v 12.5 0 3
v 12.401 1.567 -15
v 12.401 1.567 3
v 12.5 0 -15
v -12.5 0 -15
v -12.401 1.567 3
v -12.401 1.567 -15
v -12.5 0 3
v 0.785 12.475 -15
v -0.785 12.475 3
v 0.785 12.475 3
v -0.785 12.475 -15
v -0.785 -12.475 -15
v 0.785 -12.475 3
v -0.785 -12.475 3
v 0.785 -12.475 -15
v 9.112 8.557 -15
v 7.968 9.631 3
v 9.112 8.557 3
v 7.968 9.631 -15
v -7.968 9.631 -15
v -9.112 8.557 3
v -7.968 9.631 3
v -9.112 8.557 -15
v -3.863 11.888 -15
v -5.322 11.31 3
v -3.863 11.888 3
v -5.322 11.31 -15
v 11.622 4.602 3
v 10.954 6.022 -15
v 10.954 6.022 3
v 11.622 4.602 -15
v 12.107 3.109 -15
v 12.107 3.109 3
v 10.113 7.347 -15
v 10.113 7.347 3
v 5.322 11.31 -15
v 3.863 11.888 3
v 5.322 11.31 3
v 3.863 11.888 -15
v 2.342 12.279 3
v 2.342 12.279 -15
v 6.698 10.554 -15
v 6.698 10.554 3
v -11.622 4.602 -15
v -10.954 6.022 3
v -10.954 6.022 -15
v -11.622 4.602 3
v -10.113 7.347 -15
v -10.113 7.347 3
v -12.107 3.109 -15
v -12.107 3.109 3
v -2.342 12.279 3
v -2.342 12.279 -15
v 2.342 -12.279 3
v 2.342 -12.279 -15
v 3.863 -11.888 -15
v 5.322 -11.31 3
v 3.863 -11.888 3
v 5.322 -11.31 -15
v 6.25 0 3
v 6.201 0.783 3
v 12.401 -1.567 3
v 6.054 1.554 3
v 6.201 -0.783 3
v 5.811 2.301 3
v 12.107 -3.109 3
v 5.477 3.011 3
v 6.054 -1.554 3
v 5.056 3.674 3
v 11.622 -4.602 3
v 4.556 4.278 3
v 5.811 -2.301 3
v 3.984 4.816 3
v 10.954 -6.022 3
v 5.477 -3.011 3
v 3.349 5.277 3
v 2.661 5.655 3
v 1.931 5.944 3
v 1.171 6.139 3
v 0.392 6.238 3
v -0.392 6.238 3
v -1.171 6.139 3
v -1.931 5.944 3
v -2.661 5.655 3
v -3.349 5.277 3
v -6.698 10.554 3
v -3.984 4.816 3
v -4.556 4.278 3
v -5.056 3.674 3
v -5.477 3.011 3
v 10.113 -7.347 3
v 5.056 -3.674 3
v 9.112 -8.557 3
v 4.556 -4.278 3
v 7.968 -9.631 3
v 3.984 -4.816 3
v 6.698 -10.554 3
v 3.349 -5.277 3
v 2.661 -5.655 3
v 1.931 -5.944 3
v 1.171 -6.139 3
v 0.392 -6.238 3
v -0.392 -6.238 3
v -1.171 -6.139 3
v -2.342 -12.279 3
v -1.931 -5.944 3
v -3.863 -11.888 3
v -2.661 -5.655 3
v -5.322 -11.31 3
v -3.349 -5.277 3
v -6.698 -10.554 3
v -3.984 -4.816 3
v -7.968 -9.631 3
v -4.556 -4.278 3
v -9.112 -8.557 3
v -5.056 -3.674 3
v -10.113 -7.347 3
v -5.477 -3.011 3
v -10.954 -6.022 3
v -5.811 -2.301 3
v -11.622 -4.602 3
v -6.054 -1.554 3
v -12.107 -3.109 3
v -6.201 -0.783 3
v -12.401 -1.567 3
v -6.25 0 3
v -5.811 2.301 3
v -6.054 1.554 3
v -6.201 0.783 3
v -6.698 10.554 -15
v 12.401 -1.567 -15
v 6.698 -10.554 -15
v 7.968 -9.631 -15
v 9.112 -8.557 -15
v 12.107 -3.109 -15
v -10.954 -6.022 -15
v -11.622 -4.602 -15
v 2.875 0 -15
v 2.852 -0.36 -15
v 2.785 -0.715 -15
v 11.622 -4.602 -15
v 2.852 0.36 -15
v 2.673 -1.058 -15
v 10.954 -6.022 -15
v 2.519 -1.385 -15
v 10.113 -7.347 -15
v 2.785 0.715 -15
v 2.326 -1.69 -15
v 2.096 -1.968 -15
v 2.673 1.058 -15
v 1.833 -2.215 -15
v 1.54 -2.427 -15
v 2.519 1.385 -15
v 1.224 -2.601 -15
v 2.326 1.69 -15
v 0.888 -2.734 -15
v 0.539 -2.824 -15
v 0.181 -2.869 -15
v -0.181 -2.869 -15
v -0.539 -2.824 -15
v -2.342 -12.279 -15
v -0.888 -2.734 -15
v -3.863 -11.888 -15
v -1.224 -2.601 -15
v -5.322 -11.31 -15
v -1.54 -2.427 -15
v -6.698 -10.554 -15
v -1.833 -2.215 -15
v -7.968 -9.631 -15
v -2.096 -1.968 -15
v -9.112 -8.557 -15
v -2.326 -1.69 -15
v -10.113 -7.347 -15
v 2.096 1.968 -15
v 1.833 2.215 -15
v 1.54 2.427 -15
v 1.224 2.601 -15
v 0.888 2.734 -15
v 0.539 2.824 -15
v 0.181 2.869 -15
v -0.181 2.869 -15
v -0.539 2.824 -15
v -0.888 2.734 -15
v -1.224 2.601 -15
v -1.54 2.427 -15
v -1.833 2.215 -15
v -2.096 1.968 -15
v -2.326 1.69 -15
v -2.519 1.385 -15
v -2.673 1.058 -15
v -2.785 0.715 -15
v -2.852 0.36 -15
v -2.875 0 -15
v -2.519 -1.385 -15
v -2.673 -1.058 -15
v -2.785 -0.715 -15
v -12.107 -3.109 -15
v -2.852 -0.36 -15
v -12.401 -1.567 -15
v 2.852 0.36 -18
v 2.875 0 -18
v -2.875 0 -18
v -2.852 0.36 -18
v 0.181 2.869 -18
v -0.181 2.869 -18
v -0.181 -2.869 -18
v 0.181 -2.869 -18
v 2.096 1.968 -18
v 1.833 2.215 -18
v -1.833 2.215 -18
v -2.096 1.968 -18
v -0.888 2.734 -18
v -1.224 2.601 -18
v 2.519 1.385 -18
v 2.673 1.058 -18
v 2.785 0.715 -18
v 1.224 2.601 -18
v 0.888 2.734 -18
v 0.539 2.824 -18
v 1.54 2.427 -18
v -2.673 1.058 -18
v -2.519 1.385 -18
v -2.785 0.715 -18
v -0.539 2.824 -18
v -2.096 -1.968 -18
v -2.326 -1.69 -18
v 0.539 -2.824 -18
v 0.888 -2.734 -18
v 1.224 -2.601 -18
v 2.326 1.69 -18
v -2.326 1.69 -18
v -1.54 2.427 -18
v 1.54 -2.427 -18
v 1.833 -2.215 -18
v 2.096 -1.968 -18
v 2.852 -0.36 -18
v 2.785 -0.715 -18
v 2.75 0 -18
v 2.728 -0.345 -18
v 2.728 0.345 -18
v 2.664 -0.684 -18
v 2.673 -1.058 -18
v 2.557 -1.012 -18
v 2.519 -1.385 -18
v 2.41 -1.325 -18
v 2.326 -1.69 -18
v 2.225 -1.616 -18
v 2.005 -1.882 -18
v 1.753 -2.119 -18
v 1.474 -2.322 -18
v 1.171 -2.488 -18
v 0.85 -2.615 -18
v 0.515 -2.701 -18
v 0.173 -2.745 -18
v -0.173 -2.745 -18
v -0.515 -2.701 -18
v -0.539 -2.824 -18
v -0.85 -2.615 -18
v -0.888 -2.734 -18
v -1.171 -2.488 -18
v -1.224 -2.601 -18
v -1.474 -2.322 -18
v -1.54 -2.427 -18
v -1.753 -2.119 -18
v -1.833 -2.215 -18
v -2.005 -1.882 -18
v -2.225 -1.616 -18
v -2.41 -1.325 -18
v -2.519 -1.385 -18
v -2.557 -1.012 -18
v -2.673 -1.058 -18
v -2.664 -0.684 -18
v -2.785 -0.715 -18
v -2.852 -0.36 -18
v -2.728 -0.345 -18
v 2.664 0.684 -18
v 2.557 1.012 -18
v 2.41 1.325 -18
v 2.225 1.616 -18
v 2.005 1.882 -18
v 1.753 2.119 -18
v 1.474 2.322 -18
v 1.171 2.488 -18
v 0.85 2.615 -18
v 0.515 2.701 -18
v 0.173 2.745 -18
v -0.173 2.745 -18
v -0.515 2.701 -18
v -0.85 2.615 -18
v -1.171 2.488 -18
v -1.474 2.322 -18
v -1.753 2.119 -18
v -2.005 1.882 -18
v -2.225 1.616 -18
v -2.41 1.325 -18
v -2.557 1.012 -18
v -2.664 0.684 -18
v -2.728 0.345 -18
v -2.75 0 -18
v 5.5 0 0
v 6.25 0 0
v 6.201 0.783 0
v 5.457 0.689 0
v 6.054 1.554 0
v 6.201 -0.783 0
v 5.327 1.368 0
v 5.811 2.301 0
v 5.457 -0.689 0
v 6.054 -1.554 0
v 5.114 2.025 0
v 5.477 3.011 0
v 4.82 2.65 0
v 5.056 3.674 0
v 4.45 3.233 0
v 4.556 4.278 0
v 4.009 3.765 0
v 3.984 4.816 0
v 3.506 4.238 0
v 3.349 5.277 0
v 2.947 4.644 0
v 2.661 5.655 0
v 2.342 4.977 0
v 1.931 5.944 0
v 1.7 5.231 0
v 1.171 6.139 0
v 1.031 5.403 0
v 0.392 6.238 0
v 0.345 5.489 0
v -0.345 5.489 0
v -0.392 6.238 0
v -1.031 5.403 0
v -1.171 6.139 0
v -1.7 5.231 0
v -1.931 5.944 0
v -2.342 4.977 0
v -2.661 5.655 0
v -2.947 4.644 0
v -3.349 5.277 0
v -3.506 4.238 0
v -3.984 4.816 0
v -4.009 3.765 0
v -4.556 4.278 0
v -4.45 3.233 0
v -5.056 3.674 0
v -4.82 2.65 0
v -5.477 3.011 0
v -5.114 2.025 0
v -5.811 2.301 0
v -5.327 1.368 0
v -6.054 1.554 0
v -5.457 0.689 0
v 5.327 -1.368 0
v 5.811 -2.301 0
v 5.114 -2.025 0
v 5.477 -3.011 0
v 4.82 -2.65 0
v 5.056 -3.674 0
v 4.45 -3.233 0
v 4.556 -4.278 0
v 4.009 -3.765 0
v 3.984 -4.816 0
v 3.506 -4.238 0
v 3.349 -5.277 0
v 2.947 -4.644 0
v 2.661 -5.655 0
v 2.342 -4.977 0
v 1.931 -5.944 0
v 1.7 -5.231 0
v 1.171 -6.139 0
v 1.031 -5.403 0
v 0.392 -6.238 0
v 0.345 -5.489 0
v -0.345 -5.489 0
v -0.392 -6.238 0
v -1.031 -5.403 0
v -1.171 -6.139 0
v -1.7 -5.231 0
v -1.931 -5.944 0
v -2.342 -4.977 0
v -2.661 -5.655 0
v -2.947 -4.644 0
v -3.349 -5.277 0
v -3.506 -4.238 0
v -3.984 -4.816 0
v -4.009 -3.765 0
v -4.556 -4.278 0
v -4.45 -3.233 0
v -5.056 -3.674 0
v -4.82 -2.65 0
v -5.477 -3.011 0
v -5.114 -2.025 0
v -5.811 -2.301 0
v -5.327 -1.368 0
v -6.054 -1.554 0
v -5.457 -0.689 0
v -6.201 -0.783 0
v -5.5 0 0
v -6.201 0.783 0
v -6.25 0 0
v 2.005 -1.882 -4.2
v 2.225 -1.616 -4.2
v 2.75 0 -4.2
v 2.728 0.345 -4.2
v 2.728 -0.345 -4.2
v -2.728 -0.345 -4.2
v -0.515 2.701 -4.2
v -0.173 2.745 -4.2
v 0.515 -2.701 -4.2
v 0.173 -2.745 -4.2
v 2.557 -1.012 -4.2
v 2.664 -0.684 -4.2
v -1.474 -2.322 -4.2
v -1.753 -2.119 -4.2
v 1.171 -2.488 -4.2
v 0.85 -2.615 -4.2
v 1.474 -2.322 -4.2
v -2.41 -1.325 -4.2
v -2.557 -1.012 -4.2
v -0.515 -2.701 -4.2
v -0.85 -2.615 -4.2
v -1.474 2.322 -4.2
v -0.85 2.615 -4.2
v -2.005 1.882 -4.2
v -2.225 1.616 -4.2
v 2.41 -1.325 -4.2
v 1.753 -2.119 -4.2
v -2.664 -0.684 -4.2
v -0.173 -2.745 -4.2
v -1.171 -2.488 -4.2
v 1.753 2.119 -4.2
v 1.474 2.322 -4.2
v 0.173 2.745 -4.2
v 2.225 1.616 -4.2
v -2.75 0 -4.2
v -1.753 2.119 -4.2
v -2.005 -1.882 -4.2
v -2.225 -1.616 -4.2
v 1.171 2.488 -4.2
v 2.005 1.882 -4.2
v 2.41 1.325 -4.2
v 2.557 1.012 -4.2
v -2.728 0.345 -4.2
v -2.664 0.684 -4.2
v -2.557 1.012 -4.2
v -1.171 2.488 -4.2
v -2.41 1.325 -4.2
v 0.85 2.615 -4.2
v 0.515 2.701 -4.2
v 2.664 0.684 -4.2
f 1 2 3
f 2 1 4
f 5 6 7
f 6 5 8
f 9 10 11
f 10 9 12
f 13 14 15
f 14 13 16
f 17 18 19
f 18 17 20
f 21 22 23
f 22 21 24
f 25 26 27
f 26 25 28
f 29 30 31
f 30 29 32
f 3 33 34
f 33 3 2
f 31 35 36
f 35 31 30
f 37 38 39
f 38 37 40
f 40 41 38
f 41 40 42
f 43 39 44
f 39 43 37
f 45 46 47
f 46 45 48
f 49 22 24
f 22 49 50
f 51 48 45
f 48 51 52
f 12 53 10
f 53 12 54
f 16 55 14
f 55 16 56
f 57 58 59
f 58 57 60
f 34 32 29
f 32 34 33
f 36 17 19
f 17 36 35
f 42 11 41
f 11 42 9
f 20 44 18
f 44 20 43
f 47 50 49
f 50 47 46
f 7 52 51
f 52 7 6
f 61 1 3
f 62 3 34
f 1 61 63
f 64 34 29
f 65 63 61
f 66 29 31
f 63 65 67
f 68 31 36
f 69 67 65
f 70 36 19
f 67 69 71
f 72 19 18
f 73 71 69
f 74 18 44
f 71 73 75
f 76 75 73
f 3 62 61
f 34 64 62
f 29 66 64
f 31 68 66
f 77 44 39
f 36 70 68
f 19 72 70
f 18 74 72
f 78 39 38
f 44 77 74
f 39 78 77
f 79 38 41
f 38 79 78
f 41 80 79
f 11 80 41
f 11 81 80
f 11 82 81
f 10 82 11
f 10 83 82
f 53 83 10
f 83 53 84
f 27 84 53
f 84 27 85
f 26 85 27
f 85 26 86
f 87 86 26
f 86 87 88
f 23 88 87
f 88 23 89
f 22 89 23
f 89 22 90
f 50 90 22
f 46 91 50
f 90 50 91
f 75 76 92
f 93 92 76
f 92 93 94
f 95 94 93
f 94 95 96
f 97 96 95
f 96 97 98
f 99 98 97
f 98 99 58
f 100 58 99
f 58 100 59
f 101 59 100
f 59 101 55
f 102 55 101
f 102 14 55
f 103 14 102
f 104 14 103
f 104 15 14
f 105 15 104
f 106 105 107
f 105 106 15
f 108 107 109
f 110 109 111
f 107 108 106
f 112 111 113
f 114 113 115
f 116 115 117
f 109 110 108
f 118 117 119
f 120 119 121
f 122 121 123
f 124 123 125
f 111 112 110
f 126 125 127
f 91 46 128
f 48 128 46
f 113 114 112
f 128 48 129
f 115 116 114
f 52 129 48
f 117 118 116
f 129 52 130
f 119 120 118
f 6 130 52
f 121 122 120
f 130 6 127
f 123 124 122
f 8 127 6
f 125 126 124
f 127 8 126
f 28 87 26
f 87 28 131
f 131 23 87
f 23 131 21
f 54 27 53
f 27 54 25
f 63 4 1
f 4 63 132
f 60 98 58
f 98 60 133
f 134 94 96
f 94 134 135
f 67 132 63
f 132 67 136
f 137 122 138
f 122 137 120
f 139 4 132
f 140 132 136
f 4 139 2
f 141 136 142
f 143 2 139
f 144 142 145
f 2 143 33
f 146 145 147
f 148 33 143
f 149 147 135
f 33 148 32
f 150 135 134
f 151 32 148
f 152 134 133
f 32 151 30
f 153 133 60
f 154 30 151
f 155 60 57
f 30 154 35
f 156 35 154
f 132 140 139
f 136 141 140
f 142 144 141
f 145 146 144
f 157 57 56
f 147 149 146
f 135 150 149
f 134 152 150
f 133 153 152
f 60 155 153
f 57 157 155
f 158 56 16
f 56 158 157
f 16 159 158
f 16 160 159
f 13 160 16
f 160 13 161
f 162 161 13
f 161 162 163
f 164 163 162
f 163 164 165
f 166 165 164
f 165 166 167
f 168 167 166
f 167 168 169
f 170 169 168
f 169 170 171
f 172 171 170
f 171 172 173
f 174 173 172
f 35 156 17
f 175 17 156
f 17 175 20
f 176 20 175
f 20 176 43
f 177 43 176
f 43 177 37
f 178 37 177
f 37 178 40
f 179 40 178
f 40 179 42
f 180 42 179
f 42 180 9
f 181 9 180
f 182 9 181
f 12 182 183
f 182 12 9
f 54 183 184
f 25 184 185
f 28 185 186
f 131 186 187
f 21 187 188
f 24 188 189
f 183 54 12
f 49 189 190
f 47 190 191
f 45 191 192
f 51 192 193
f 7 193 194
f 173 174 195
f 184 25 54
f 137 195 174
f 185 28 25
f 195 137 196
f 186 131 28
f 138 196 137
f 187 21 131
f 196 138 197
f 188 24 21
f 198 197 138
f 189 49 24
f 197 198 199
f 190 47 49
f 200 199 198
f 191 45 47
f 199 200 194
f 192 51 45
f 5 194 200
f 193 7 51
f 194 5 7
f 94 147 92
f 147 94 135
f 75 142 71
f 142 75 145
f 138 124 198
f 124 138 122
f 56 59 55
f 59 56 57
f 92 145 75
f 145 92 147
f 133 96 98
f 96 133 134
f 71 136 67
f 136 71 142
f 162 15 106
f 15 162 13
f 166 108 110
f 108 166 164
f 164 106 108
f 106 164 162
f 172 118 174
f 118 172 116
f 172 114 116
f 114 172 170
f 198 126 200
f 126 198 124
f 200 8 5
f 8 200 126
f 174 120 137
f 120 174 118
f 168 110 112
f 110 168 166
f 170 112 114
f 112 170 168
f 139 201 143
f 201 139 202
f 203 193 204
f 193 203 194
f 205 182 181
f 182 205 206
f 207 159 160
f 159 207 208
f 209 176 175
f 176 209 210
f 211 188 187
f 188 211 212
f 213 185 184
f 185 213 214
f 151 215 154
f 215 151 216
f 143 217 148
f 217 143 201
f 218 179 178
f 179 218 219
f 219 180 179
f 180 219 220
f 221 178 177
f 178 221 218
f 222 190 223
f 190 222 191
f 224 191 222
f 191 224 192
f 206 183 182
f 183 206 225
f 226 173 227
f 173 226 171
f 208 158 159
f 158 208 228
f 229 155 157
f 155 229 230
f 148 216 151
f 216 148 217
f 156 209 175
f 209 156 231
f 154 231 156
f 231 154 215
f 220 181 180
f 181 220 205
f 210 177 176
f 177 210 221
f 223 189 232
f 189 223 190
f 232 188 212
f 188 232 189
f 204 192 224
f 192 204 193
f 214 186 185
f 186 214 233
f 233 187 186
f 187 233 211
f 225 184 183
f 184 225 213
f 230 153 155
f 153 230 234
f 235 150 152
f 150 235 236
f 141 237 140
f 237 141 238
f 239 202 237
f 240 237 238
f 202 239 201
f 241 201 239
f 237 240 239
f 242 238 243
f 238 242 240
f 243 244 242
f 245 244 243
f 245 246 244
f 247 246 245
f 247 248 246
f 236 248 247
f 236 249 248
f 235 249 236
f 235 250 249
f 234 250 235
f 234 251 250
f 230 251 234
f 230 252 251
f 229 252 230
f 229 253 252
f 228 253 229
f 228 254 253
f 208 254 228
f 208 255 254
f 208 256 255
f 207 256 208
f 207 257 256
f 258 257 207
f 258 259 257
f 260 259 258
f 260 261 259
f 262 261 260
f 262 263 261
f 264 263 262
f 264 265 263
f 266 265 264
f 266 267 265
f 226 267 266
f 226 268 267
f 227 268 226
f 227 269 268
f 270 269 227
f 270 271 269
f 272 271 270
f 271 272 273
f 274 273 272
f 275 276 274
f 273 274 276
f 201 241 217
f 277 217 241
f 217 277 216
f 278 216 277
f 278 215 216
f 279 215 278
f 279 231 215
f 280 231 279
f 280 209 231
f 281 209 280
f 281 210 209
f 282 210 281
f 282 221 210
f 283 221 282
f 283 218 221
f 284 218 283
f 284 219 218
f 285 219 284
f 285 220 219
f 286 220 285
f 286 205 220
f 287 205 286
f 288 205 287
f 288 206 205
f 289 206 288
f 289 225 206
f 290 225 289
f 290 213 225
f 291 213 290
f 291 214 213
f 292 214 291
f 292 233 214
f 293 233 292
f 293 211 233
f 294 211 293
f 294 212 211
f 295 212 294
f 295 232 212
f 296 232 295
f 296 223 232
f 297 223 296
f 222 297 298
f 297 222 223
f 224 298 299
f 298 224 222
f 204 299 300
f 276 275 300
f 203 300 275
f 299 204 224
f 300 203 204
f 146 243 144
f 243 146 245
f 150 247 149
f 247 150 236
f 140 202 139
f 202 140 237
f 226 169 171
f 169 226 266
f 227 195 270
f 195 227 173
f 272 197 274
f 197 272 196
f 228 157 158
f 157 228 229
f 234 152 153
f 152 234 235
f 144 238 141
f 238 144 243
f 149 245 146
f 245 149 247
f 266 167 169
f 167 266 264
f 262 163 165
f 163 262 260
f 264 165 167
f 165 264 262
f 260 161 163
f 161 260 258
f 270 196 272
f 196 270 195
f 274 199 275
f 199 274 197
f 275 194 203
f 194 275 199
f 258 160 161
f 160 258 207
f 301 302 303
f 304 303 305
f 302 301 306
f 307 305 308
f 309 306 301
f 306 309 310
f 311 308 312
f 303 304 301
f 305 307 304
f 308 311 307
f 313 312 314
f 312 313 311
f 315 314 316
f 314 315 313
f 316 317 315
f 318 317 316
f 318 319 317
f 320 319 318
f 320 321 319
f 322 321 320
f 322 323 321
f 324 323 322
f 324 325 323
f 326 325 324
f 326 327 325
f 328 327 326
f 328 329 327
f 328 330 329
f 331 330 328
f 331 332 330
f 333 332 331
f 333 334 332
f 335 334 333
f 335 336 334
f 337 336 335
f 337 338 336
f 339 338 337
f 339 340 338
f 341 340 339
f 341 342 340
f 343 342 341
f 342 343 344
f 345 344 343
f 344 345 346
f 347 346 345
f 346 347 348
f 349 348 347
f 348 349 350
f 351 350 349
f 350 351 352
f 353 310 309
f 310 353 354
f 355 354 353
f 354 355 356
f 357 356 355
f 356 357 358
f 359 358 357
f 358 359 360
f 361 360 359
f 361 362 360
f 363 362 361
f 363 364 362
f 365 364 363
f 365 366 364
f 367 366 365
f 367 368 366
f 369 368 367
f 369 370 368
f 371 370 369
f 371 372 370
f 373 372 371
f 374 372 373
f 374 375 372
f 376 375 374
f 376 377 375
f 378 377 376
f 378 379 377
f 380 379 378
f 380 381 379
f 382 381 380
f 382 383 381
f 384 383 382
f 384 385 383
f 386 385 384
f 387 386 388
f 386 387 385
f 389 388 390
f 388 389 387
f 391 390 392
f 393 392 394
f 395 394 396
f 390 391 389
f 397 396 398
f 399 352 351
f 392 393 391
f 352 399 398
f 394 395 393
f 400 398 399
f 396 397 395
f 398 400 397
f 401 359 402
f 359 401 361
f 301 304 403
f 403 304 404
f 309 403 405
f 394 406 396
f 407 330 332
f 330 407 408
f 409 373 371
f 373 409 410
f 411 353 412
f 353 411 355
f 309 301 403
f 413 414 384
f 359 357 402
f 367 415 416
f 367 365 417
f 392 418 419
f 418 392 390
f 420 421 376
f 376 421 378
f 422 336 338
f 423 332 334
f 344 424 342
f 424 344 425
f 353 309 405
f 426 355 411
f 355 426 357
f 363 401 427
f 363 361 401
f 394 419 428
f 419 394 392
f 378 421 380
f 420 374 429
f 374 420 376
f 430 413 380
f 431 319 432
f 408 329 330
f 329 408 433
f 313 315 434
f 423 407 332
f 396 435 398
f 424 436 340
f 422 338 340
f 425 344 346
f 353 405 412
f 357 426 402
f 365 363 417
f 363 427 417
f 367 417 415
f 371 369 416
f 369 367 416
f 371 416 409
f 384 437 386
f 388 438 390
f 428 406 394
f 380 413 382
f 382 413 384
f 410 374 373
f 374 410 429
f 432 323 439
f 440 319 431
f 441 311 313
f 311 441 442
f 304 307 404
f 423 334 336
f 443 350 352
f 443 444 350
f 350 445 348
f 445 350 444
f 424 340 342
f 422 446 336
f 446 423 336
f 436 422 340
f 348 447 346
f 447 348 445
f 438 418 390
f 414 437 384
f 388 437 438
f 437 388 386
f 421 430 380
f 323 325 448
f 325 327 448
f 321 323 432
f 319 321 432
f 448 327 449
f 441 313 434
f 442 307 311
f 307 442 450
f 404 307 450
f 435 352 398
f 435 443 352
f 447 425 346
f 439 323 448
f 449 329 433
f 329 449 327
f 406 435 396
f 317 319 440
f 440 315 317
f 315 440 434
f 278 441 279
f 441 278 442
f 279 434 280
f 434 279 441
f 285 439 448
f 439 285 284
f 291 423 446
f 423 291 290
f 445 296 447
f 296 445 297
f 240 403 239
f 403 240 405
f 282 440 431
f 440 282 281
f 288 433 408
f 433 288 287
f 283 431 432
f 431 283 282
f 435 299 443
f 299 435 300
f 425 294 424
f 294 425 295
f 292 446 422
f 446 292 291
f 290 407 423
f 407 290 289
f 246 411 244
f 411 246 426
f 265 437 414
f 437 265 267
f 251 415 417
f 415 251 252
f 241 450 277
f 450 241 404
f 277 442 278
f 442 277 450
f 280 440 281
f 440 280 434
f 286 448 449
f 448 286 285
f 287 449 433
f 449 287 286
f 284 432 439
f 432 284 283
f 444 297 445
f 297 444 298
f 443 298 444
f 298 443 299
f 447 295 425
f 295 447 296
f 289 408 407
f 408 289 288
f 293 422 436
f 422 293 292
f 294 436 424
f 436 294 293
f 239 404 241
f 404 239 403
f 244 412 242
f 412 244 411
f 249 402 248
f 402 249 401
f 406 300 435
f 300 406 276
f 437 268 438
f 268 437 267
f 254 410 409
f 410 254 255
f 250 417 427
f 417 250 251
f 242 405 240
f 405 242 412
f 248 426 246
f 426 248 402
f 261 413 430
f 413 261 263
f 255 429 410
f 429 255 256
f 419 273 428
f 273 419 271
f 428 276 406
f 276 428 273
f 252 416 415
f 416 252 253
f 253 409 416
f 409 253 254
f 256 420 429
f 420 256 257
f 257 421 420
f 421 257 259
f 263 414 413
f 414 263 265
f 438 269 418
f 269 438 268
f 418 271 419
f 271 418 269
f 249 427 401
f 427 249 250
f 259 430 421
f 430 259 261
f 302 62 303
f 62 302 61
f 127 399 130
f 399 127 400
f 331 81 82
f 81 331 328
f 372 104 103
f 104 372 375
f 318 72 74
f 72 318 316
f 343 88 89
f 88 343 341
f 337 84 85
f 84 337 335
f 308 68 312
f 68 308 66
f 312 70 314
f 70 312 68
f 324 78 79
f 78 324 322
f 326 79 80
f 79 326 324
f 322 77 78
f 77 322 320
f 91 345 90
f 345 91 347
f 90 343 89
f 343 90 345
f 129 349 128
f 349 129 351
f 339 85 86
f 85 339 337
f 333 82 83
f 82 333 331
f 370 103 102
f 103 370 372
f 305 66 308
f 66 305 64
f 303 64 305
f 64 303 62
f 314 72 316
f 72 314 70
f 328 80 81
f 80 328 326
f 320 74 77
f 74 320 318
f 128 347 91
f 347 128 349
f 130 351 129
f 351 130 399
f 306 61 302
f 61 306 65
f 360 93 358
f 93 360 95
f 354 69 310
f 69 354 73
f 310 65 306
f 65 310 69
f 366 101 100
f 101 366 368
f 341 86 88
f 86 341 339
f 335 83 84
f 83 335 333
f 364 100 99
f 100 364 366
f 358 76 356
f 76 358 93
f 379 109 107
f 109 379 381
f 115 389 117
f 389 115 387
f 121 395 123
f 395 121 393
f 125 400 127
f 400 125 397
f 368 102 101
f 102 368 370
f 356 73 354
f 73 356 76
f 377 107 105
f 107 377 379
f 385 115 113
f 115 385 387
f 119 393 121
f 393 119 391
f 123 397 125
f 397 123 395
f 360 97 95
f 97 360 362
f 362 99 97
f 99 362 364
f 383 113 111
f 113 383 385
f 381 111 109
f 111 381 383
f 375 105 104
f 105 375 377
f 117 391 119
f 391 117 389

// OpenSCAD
$fn = 50;


difference() {
	union() {
		translate(v = [0, 0, -15.0000000000]) {
			cylinder(h = 18, r = 12.5000000000);
		}
		#translate(v = [0, 0, -18.0000000000]) {
			cylinder(h = 18, r = 2.8750000000);
		}
	}
	union() {
		translate(v = [0, 0, 0]) {
			rotate(a = [0, 0, 0]) {
				difference() {
					union() {
						translate(v = [0, 0, -18.0000000000]) {
							cylinder(h = 18, r = 2.2500000000);
						}
						translate(v = [0, 0, -4.2000000000]) {
							cylinder(h = 4.2000000000, r1 = 2.7500000000, r2 = 5.5000000000);
						}
						translate(v = [0, 0, -18.0000000000]) {
							cylinder(h = 18, r = 2.7500000000);
						}
						translate(v = [0, 0, -18.0000000000]) {
							cylinder(h = 18, r = 2.2500000000);
						}
					}
					union();
				}
			}
		}
		#cylinder(h = 3, r = 6.2500000000);
	}
}
